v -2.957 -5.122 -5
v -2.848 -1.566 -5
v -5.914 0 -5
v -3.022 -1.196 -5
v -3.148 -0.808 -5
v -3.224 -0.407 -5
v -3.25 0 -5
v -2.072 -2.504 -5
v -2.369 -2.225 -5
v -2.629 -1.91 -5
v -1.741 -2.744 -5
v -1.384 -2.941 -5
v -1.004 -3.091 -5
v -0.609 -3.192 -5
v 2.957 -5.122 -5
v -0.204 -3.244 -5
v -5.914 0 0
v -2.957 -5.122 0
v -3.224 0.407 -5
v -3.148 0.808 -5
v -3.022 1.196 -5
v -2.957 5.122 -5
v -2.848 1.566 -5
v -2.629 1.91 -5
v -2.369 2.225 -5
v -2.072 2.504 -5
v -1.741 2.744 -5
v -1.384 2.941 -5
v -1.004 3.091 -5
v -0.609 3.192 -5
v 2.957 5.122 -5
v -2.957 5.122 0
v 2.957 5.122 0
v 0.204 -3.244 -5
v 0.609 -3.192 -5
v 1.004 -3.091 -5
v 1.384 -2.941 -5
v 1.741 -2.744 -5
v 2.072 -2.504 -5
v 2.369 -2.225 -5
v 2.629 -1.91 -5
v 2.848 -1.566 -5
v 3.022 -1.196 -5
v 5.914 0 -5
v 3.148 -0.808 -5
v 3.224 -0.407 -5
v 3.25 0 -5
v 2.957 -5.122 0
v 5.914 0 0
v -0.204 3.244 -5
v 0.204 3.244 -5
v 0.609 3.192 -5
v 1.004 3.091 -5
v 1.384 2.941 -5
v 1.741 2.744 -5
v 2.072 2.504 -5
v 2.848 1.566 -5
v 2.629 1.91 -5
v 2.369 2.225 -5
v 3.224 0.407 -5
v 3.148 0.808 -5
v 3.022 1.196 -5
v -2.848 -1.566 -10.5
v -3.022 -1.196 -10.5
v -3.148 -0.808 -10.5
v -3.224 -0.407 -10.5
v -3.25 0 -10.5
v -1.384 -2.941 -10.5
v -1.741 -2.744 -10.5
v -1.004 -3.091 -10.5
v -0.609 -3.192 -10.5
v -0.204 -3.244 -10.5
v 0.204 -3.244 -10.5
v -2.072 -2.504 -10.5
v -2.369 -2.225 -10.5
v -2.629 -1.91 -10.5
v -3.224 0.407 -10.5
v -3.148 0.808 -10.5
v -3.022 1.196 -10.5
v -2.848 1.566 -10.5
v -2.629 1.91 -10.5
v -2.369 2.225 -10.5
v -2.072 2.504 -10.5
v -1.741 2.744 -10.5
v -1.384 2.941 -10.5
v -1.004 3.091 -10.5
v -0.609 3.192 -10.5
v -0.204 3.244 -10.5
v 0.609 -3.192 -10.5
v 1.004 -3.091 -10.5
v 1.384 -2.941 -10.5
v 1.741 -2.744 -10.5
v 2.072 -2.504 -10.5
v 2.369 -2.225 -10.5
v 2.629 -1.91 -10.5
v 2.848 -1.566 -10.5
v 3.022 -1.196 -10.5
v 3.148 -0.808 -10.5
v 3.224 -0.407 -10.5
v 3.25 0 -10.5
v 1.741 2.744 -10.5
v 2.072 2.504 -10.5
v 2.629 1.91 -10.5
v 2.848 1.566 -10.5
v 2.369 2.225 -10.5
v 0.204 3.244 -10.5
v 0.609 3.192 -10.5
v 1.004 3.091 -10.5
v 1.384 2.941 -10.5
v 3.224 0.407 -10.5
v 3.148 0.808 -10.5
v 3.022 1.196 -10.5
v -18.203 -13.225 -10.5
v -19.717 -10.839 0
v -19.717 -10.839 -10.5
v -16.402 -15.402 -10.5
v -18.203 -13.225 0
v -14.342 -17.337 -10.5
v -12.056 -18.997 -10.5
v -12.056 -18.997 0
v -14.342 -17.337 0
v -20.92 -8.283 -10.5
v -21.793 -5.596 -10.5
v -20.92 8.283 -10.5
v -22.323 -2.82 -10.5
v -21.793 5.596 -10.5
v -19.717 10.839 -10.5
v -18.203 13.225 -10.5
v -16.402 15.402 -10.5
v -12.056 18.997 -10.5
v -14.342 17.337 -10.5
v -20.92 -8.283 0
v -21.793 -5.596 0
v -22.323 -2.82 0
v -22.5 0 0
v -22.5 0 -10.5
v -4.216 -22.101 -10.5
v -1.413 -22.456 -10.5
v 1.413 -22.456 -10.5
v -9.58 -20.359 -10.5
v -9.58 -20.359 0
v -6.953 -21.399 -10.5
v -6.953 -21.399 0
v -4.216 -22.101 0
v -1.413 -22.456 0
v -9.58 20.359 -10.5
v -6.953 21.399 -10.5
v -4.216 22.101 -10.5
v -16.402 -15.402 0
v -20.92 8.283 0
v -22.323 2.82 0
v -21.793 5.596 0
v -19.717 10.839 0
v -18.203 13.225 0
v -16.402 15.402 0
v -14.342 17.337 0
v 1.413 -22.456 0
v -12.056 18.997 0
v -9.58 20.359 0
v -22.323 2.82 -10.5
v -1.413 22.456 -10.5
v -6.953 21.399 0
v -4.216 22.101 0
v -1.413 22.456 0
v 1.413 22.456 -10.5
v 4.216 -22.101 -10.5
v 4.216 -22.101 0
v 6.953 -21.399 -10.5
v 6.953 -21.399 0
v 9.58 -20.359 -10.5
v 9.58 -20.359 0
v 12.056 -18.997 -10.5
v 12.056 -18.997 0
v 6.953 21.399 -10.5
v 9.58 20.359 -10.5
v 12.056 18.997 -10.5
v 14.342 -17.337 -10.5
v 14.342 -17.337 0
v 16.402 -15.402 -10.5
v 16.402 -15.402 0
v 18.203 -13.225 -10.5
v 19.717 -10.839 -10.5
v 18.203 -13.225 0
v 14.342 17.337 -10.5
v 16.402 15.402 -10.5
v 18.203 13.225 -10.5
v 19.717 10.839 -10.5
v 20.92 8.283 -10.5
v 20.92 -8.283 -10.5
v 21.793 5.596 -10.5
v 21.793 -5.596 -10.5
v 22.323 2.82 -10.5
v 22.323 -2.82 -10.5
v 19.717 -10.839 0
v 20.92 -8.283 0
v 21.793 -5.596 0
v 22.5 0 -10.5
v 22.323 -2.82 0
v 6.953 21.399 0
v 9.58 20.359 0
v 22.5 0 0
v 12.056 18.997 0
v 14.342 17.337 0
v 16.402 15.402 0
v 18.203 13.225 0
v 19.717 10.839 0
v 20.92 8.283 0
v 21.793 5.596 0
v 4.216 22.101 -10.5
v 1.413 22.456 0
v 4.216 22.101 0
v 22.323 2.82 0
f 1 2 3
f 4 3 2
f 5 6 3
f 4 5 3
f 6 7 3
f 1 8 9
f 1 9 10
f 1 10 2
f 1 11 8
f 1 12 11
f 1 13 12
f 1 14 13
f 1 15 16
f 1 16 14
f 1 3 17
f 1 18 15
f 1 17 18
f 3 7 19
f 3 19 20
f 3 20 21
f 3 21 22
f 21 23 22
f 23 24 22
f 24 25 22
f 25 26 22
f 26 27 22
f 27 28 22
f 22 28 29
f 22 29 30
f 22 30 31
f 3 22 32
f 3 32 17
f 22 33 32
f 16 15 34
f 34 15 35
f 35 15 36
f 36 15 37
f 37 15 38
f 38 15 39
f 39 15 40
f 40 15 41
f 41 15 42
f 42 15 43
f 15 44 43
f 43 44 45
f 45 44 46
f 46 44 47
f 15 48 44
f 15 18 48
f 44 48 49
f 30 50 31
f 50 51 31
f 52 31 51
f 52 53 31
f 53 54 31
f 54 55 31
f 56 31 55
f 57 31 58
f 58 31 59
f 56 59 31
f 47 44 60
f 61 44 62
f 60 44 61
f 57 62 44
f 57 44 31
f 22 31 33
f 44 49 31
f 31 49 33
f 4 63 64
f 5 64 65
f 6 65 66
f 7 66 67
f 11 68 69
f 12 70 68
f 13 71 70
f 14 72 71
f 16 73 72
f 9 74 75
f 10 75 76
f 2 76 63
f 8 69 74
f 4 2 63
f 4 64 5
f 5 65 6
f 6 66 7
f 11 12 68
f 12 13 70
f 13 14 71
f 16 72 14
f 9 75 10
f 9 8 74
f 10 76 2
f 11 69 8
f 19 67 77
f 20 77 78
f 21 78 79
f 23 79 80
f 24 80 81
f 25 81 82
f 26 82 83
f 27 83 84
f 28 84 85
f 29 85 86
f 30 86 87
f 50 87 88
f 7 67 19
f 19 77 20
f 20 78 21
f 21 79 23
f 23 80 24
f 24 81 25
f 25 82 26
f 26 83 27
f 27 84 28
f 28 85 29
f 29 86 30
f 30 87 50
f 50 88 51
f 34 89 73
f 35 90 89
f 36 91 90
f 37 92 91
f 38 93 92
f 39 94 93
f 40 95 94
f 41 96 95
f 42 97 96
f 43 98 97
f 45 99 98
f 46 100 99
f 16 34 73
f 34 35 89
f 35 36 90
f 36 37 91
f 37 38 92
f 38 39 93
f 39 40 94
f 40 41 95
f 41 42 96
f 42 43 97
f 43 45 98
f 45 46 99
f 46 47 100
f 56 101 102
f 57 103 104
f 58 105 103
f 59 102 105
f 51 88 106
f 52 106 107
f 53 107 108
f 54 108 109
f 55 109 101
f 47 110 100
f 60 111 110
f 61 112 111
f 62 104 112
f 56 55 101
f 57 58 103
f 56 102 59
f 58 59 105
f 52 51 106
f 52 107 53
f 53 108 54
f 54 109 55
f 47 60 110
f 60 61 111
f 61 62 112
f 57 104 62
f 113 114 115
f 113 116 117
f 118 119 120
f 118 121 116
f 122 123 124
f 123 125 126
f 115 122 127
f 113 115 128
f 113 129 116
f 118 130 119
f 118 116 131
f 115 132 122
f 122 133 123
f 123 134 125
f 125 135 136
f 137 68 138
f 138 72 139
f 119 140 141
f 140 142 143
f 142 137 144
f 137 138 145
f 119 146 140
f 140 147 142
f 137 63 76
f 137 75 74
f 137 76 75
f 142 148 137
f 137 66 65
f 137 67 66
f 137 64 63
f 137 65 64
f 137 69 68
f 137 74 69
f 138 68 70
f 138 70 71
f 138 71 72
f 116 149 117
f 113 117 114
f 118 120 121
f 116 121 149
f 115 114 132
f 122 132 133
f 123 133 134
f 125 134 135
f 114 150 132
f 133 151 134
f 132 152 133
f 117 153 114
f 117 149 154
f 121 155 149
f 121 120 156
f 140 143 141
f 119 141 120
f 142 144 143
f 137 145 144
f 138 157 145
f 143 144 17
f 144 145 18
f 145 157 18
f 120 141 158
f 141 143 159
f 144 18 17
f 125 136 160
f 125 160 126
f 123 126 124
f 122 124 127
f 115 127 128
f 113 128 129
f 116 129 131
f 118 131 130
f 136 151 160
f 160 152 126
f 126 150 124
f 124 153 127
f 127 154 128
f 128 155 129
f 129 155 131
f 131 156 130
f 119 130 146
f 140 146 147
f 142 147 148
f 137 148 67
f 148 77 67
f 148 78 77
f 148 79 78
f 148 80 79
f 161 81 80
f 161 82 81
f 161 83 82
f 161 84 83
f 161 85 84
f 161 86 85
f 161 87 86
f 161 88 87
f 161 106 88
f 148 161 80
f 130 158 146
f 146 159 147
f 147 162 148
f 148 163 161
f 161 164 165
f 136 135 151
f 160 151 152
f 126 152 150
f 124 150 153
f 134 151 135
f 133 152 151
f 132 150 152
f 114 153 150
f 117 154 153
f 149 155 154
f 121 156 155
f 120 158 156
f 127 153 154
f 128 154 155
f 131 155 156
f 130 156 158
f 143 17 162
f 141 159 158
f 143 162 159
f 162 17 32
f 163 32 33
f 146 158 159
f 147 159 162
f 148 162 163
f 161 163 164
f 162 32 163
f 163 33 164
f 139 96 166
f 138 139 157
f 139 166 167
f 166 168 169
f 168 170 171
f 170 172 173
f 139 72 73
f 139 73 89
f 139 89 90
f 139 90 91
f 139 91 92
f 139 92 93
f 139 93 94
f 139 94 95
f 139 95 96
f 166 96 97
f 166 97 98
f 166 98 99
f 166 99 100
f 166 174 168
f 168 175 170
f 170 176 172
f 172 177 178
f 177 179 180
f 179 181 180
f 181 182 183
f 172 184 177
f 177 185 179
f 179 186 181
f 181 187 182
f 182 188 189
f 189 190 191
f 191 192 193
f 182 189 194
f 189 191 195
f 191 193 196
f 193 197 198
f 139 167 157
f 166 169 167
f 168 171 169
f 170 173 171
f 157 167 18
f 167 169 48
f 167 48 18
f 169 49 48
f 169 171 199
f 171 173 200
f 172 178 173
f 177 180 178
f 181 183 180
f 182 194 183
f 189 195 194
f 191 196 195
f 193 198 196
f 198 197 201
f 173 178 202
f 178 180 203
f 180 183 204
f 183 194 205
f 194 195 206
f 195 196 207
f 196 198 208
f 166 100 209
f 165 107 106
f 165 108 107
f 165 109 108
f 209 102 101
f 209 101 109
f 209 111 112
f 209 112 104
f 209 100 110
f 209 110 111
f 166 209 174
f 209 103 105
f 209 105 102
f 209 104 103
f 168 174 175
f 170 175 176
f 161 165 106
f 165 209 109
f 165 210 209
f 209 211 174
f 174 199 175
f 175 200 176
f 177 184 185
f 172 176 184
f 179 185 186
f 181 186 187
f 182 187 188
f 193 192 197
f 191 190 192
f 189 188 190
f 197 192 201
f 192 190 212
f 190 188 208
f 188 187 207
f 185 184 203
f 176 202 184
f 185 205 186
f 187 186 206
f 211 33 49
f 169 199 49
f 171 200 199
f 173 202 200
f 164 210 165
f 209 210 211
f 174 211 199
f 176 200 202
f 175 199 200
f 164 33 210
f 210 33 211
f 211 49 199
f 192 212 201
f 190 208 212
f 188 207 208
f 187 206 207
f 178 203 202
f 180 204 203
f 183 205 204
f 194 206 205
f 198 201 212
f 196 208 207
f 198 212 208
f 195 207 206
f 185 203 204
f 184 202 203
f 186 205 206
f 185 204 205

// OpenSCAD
$fn = 50;

difference() {
	union() {
		translate(v = [0, 0, -10.5]) {
			cylinder(h = 10.5, r = 22.5);
		}
	}
	union() {
		translate(v = [0, 0, 0]) {
			rotate(a = [0, 0, 0]) {
				difference() {
					union() {
						translate(v = [0, 0, -5]) {
							linear_extrude(height = 5) {
								polygon(points = [[5.914249999999999, 0.0], [2.957125, 5.1218907443321156], [-2.9571249999999982, 5.1218907443321156], [-5.914249999999999, 7.242867331857232e-16], [-2.9571250000000022, -5.121890744332115], [2.9571249999999956, -5.121890744332118]]);
							}
						}
					}
					union();
				}
			}
		}
		#translate(v = [0, 0, -100.0]) {
			cylinder(h = 200, r = 3.25);
		}
	}
}
